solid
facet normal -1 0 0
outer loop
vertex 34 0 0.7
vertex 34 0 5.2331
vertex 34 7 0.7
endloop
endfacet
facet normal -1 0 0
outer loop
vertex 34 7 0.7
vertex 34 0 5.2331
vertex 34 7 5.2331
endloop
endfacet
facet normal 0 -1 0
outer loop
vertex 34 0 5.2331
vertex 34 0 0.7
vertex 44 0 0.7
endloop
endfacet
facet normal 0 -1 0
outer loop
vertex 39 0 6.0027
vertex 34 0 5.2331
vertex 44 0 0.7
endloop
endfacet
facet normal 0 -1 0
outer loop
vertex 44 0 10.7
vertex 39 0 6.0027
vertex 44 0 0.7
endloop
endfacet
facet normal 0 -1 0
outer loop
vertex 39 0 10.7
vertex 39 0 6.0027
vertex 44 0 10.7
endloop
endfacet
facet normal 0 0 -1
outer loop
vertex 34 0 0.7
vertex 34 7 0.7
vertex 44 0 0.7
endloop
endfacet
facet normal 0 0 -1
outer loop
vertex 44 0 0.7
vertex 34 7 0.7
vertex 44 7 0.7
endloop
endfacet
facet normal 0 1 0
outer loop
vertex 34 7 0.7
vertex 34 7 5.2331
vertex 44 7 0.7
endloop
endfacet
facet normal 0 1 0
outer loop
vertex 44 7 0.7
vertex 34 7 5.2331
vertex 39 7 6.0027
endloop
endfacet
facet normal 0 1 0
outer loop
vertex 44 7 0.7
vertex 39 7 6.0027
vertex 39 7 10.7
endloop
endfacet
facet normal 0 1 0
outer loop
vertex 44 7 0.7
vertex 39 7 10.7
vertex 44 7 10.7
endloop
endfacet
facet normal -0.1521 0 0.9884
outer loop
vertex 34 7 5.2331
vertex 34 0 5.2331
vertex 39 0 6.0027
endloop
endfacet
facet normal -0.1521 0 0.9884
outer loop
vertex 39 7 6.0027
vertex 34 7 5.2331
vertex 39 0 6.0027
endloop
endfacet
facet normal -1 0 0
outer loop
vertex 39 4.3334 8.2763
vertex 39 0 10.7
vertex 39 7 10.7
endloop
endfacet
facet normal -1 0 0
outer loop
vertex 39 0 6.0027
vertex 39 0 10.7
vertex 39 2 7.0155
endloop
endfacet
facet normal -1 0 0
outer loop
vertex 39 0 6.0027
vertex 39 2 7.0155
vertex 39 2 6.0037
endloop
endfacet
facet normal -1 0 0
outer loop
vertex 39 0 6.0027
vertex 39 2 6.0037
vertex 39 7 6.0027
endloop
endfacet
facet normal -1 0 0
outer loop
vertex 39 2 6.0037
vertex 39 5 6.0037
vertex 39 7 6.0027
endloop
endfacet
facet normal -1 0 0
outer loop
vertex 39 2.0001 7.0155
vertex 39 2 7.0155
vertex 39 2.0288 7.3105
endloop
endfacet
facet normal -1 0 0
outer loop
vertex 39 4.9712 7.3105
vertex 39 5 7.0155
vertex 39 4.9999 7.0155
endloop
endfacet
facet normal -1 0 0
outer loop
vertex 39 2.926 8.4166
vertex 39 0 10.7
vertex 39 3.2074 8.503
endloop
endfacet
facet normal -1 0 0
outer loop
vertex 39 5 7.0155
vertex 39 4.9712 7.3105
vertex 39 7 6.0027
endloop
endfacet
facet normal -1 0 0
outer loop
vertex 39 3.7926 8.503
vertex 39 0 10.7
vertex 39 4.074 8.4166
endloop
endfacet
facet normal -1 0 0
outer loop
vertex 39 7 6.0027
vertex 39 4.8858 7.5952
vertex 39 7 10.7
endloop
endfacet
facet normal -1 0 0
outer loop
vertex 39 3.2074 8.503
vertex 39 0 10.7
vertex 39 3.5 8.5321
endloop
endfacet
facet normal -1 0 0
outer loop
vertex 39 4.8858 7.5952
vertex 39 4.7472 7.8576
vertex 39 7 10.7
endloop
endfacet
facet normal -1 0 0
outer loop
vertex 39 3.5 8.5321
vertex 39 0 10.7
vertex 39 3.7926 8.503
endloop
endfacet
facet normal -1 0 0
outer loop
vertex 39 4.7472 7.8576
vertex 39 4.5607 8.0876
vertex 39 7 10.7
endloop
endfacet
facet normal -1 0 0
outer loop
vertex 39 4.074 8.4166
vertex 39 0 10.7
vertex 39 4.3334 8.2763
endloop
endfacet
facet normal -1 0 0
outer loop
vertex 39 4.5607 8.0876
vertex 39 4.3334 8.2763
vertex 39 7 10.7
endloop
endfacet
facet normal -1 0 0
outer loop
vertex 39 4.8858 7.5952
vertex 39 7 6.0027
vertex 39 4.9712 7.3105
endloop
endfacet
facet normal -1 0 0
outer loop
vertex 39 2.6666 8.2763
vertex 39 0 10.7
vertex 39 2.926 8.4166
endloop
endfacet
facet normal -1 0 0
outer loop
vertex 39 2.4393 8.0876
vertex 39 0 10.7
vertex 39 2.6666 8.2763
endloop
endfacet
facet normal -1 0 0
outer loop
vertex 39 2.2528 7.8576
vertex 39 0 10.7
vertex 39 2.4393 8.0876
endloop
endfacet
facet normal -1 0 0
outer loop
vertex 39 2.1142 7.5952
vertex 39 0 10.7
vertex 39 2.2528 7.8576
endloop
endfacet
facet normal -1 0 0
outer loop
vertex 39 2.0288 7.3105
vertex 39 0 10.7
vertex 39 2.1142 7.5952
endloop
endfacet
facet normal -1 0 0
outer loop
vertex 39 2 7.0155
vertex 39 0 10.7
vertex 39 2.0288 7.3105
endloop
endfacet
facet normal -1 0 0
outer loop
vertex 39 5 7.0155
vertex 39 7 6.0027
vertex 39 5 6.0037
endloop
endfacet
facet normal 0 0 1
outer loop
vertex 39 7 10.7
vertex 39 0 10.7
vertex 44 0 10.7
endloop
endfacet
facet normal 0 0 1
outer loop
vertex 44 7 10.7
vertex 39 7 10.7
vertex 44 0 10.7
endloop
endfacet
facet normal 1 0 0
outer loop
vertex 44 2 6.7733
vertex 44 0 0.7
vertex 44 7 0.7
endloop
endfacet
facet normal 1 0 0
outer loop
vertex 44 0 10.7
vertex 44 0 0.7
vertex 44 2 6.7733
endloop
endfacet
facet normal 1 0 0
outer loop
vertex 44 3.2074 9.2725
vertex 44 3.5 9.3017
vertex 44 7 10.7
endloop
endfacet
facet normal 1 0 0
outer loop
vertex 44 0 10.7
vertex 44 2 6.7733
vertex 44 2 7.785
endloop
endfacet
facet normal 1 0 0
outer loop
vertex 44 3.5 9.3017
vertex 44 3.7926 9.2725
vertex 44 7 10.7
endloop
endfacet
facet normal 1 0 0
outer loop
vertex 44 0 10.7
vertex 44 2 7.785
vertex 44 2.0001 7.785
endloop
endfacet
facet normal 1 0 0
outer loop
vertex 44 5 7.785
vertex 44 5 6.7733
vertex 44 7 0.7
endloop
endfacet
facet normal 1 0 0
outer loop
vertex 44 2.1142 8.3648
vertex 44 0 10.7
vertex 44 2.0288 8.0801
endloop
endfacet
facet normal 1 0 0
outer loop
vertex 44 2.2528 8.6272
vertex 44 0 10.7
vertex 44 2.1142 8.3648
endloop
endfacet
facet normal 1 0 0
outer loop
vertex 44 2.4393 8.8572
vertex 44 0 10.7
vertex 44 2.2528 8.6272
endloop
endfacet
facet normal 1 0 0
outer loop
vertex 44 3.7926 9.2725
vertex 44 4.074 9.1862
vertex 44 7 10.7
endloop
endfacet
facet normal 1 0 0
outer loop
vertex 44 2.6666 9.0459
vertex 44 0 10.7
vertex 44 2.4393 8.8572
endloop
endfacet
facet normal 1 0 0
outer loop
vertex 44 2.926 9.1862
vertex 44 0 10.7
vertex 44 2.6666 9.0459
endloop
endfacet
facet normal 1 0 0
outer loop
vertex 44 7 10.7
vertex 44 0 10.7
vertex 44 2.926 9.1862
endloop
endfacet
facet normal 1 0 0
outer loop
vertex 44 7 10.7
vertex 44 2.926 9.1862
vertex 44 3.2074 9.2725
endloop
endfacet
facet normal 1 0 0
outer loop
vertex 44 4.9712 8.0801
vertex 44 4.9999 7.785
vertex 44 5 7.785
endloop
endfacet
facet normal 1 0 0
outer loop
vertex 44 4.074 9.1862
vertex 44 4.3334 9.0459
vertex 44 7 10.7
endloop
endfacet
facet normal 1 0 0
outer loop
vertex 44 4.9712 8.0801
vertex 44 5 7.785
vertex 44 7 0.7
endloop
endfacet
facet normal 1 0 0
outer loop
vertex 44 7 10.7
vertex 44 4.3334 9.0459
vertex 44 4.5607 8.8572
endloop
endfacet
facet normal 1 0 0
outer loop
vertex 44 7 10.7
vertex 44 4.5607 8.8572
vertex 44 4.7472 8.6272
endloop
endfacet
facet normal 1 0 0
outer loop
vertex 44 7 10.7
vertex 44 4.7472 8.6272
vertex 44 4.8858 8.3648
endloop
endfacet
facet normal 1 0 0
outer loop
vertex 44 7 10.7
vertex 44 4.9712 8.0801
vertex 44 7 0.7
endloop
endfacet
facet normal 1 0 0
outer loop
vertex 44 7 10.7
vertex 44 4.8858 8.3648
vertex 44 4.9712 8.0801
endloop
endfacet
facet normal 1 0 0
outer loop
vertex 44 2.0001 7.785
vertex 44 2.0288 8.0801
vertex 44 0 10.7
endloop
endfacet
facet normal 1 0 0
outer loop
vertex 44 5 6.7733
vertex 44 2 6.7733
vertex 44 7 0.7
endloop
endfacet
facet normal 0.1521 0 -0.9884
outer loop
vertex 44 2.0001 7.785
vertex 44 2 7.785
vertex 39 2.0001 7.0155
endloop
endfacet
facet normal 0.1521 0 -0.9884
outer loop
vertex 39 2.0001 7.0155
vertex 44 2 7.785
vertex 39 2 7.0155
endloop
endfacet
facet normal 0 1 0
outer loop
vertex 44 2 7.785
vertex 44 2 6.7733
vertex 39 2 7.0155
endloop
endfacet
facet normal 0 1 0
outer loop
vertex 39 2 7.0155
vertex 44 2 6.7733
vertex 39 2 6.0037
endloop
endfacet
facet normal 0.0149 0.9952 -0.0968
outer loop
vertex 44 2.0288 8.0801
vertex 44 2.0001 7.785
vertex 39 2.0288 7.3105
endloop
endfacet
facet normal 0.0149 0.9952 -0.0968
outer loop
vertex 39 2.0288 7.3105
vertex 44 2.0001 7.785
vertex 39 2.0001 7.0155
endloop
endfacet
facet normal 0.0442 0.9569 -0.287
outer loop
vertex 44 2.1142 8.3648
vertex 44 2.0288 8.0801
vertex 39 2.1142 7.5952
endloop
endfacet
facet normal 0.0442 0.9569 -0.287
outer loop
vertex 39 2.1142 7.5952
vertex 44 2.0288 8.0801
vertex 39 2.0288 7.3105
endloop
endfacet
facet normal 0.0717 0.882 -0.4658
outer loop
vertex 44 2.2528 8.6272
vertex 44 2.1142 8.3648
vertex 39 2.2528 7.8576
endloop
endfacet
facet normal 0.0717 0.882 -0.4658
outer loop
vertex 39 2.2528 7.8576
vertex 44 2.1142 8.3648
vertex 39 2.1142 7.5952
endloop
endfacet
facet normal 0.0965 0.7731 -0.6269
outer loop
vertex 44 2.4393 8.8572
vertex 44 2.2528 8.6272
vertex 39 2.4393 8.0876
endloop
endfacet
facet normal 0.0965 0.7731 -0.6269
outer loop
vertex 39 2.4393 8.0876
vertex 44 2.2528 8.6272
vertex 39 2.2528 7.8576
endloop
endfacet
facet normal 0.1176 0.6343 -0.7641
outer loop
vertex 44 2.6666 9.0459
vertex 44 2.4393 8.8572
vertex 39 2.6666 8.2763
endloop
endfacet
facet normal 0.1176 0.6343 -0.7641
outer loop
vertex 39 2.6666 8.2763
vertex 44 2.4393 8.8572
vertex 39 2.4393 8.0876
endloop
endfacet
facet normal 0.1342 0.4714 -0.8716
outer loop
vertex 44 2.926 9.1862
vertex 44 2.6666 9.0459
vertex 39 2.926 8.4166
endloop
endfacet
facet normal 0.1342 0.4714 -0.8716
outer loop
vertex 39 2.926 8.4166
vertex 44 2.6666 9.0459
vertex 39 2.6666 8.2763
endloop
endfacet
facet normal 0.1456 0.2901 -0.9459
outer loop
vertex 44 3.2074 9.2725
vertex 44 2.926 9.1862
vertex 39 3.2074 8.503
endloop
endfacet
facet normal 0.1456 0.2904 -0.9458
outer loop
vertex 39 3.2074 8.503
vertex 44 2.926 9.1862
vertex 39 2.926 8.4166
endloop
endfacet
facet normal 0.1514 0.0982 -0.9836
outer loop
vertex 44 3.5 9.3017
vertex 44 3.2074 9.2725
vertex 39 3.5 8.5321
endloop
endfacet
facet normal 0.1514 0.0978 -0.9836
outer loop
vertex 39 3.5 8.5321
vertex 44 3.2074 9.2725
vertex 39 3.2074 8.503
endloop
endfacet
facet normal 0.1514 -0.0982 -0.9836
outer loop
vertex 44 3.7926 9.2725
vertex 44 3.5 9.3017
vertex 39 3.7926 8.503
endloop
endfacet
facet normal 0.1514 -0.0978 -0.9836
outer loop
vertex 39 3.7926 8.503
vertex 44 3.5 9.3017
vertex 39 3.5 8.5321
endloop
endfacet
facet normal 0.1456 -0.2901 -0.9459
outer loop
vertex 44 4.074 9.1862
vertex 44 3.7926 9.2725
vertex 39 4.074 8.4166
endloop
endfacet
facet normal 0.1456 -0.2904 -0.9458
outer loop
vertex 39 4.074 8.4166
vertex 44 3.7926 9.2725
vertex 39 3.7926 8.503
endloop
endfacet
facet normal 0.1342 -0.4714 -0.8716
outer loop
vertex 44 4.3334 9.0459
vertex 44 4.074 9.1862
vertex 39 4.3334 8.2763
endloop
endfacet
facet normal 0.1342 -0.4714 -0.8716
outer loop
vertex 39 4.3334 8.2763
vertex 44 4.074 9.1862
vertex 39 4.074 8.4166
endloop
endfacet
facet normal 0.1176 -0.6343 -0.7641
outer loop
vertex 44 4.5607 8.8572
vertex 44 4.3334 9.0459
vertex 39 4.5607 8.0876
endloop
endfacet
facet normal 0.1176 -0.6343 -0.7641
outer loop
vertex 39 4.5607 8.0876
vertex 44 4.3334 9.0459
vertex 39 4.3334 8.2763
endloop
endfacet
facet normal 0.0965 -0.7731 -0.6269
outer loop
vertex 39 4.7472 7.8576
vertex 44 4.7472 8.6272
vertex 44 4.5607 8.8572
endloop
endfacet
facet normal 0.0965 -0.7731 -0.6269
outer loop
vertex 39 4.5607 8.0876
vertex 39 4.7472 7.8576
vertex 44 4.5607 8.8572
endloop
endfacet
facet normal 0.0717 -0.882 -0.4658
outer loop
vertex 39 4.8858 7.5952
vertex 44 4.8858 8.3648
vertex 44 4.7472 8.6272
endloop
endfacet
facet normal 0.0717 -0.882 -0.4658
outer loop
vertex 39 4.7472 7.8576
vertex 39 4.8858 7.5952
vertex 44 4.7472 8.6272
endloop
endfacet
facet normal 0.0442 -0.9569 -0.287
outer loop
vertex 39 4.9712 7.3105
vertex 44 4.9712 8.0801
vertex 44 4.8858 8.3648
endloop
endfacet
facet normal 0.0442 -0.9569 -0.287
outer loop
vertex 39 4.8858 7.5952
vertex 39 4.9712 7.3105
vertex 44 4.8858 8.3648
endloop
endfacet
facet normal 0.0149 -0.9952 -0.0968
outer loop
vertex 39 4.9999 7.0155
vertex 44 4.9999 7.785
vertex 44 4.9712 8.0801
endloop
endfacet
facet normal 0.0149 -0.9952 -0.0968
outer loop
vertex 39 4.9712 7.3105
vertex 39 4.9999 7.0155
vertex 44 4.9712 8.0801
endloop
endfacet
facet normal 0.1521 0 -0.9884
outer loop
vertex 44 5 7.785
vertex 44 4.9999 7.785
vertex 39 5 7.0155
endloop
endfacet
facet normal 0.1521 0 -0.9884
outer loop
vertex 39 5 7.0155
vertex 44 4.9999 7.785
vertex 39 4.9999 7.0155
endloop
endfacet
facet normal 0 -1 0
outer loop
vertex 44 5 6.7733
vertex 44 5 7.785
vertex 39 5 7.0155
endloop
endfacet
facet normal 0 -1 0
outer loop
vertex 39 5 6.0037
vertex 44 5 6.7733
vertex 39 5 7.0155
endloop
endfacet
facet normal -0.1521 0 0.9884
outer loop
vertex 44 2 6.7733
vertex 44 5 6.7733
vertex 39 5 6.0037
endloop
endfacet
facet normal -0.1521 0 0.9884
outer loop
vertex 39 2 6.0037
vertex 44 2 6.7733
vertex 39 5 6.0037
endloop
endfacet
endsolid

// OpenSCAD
$fn=32;

intersection() {
  rotate([0, -17.5/2, 0]) translate([0, 0, -30]) cube([50, 7, 30]);
  rotate([0, 17.5/2, 0]) cube([50, 7, 30]);
  translate([34, 0, 1.4/2]) cube([10, 7, 20]);
}

// translate([34+3/2+10/2, 2.5, 6.4]) rotate([0, 90-17.5/2, 0]) difference() {
//   cylinder(r=5/2, h=3, center=true);
//   cylinder(r=2.8/2, h=5, center=true);
// }


difference() {
  translate([34+5, 0, 1.4/2]) cube([5, 7, 10]);
rotate([0, 90-17.5/2, 0]) 
translate([0, 7/2, 25]) union() {
translate([-1, 0, 0]) intersection() {
  cylinder(r=3/2, h=50, center=true);
  translate([-5, 0, 0]) cube([10, 10, 50], center=true);
}
translate([-0.501, 0, 0]) cube([1, 3, 50], center=true);
}
}
